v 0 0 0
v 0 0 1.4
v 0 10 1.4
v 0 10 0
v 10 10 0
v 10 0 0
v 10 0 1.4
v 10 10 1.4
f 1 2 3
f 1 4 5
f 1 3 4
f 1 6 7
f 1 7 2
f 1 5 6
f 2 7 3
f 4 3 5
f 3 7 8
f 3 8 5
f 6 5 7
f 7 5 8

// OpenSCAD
/* Warning, this is a very basic generator with a lot of approximation 
input data : [LQFP, 2DB, 10x10x1.4mm, 64, , A, C04-21001A]
generated by com.zoubworld.electronics.cad.model3d.Basic
Date : Sun Feb 15 10:50:49 CET 2026
*/

//body
color("black")
translate([0,0,0])
cube([10.0,10.0,1.4], center=false);
